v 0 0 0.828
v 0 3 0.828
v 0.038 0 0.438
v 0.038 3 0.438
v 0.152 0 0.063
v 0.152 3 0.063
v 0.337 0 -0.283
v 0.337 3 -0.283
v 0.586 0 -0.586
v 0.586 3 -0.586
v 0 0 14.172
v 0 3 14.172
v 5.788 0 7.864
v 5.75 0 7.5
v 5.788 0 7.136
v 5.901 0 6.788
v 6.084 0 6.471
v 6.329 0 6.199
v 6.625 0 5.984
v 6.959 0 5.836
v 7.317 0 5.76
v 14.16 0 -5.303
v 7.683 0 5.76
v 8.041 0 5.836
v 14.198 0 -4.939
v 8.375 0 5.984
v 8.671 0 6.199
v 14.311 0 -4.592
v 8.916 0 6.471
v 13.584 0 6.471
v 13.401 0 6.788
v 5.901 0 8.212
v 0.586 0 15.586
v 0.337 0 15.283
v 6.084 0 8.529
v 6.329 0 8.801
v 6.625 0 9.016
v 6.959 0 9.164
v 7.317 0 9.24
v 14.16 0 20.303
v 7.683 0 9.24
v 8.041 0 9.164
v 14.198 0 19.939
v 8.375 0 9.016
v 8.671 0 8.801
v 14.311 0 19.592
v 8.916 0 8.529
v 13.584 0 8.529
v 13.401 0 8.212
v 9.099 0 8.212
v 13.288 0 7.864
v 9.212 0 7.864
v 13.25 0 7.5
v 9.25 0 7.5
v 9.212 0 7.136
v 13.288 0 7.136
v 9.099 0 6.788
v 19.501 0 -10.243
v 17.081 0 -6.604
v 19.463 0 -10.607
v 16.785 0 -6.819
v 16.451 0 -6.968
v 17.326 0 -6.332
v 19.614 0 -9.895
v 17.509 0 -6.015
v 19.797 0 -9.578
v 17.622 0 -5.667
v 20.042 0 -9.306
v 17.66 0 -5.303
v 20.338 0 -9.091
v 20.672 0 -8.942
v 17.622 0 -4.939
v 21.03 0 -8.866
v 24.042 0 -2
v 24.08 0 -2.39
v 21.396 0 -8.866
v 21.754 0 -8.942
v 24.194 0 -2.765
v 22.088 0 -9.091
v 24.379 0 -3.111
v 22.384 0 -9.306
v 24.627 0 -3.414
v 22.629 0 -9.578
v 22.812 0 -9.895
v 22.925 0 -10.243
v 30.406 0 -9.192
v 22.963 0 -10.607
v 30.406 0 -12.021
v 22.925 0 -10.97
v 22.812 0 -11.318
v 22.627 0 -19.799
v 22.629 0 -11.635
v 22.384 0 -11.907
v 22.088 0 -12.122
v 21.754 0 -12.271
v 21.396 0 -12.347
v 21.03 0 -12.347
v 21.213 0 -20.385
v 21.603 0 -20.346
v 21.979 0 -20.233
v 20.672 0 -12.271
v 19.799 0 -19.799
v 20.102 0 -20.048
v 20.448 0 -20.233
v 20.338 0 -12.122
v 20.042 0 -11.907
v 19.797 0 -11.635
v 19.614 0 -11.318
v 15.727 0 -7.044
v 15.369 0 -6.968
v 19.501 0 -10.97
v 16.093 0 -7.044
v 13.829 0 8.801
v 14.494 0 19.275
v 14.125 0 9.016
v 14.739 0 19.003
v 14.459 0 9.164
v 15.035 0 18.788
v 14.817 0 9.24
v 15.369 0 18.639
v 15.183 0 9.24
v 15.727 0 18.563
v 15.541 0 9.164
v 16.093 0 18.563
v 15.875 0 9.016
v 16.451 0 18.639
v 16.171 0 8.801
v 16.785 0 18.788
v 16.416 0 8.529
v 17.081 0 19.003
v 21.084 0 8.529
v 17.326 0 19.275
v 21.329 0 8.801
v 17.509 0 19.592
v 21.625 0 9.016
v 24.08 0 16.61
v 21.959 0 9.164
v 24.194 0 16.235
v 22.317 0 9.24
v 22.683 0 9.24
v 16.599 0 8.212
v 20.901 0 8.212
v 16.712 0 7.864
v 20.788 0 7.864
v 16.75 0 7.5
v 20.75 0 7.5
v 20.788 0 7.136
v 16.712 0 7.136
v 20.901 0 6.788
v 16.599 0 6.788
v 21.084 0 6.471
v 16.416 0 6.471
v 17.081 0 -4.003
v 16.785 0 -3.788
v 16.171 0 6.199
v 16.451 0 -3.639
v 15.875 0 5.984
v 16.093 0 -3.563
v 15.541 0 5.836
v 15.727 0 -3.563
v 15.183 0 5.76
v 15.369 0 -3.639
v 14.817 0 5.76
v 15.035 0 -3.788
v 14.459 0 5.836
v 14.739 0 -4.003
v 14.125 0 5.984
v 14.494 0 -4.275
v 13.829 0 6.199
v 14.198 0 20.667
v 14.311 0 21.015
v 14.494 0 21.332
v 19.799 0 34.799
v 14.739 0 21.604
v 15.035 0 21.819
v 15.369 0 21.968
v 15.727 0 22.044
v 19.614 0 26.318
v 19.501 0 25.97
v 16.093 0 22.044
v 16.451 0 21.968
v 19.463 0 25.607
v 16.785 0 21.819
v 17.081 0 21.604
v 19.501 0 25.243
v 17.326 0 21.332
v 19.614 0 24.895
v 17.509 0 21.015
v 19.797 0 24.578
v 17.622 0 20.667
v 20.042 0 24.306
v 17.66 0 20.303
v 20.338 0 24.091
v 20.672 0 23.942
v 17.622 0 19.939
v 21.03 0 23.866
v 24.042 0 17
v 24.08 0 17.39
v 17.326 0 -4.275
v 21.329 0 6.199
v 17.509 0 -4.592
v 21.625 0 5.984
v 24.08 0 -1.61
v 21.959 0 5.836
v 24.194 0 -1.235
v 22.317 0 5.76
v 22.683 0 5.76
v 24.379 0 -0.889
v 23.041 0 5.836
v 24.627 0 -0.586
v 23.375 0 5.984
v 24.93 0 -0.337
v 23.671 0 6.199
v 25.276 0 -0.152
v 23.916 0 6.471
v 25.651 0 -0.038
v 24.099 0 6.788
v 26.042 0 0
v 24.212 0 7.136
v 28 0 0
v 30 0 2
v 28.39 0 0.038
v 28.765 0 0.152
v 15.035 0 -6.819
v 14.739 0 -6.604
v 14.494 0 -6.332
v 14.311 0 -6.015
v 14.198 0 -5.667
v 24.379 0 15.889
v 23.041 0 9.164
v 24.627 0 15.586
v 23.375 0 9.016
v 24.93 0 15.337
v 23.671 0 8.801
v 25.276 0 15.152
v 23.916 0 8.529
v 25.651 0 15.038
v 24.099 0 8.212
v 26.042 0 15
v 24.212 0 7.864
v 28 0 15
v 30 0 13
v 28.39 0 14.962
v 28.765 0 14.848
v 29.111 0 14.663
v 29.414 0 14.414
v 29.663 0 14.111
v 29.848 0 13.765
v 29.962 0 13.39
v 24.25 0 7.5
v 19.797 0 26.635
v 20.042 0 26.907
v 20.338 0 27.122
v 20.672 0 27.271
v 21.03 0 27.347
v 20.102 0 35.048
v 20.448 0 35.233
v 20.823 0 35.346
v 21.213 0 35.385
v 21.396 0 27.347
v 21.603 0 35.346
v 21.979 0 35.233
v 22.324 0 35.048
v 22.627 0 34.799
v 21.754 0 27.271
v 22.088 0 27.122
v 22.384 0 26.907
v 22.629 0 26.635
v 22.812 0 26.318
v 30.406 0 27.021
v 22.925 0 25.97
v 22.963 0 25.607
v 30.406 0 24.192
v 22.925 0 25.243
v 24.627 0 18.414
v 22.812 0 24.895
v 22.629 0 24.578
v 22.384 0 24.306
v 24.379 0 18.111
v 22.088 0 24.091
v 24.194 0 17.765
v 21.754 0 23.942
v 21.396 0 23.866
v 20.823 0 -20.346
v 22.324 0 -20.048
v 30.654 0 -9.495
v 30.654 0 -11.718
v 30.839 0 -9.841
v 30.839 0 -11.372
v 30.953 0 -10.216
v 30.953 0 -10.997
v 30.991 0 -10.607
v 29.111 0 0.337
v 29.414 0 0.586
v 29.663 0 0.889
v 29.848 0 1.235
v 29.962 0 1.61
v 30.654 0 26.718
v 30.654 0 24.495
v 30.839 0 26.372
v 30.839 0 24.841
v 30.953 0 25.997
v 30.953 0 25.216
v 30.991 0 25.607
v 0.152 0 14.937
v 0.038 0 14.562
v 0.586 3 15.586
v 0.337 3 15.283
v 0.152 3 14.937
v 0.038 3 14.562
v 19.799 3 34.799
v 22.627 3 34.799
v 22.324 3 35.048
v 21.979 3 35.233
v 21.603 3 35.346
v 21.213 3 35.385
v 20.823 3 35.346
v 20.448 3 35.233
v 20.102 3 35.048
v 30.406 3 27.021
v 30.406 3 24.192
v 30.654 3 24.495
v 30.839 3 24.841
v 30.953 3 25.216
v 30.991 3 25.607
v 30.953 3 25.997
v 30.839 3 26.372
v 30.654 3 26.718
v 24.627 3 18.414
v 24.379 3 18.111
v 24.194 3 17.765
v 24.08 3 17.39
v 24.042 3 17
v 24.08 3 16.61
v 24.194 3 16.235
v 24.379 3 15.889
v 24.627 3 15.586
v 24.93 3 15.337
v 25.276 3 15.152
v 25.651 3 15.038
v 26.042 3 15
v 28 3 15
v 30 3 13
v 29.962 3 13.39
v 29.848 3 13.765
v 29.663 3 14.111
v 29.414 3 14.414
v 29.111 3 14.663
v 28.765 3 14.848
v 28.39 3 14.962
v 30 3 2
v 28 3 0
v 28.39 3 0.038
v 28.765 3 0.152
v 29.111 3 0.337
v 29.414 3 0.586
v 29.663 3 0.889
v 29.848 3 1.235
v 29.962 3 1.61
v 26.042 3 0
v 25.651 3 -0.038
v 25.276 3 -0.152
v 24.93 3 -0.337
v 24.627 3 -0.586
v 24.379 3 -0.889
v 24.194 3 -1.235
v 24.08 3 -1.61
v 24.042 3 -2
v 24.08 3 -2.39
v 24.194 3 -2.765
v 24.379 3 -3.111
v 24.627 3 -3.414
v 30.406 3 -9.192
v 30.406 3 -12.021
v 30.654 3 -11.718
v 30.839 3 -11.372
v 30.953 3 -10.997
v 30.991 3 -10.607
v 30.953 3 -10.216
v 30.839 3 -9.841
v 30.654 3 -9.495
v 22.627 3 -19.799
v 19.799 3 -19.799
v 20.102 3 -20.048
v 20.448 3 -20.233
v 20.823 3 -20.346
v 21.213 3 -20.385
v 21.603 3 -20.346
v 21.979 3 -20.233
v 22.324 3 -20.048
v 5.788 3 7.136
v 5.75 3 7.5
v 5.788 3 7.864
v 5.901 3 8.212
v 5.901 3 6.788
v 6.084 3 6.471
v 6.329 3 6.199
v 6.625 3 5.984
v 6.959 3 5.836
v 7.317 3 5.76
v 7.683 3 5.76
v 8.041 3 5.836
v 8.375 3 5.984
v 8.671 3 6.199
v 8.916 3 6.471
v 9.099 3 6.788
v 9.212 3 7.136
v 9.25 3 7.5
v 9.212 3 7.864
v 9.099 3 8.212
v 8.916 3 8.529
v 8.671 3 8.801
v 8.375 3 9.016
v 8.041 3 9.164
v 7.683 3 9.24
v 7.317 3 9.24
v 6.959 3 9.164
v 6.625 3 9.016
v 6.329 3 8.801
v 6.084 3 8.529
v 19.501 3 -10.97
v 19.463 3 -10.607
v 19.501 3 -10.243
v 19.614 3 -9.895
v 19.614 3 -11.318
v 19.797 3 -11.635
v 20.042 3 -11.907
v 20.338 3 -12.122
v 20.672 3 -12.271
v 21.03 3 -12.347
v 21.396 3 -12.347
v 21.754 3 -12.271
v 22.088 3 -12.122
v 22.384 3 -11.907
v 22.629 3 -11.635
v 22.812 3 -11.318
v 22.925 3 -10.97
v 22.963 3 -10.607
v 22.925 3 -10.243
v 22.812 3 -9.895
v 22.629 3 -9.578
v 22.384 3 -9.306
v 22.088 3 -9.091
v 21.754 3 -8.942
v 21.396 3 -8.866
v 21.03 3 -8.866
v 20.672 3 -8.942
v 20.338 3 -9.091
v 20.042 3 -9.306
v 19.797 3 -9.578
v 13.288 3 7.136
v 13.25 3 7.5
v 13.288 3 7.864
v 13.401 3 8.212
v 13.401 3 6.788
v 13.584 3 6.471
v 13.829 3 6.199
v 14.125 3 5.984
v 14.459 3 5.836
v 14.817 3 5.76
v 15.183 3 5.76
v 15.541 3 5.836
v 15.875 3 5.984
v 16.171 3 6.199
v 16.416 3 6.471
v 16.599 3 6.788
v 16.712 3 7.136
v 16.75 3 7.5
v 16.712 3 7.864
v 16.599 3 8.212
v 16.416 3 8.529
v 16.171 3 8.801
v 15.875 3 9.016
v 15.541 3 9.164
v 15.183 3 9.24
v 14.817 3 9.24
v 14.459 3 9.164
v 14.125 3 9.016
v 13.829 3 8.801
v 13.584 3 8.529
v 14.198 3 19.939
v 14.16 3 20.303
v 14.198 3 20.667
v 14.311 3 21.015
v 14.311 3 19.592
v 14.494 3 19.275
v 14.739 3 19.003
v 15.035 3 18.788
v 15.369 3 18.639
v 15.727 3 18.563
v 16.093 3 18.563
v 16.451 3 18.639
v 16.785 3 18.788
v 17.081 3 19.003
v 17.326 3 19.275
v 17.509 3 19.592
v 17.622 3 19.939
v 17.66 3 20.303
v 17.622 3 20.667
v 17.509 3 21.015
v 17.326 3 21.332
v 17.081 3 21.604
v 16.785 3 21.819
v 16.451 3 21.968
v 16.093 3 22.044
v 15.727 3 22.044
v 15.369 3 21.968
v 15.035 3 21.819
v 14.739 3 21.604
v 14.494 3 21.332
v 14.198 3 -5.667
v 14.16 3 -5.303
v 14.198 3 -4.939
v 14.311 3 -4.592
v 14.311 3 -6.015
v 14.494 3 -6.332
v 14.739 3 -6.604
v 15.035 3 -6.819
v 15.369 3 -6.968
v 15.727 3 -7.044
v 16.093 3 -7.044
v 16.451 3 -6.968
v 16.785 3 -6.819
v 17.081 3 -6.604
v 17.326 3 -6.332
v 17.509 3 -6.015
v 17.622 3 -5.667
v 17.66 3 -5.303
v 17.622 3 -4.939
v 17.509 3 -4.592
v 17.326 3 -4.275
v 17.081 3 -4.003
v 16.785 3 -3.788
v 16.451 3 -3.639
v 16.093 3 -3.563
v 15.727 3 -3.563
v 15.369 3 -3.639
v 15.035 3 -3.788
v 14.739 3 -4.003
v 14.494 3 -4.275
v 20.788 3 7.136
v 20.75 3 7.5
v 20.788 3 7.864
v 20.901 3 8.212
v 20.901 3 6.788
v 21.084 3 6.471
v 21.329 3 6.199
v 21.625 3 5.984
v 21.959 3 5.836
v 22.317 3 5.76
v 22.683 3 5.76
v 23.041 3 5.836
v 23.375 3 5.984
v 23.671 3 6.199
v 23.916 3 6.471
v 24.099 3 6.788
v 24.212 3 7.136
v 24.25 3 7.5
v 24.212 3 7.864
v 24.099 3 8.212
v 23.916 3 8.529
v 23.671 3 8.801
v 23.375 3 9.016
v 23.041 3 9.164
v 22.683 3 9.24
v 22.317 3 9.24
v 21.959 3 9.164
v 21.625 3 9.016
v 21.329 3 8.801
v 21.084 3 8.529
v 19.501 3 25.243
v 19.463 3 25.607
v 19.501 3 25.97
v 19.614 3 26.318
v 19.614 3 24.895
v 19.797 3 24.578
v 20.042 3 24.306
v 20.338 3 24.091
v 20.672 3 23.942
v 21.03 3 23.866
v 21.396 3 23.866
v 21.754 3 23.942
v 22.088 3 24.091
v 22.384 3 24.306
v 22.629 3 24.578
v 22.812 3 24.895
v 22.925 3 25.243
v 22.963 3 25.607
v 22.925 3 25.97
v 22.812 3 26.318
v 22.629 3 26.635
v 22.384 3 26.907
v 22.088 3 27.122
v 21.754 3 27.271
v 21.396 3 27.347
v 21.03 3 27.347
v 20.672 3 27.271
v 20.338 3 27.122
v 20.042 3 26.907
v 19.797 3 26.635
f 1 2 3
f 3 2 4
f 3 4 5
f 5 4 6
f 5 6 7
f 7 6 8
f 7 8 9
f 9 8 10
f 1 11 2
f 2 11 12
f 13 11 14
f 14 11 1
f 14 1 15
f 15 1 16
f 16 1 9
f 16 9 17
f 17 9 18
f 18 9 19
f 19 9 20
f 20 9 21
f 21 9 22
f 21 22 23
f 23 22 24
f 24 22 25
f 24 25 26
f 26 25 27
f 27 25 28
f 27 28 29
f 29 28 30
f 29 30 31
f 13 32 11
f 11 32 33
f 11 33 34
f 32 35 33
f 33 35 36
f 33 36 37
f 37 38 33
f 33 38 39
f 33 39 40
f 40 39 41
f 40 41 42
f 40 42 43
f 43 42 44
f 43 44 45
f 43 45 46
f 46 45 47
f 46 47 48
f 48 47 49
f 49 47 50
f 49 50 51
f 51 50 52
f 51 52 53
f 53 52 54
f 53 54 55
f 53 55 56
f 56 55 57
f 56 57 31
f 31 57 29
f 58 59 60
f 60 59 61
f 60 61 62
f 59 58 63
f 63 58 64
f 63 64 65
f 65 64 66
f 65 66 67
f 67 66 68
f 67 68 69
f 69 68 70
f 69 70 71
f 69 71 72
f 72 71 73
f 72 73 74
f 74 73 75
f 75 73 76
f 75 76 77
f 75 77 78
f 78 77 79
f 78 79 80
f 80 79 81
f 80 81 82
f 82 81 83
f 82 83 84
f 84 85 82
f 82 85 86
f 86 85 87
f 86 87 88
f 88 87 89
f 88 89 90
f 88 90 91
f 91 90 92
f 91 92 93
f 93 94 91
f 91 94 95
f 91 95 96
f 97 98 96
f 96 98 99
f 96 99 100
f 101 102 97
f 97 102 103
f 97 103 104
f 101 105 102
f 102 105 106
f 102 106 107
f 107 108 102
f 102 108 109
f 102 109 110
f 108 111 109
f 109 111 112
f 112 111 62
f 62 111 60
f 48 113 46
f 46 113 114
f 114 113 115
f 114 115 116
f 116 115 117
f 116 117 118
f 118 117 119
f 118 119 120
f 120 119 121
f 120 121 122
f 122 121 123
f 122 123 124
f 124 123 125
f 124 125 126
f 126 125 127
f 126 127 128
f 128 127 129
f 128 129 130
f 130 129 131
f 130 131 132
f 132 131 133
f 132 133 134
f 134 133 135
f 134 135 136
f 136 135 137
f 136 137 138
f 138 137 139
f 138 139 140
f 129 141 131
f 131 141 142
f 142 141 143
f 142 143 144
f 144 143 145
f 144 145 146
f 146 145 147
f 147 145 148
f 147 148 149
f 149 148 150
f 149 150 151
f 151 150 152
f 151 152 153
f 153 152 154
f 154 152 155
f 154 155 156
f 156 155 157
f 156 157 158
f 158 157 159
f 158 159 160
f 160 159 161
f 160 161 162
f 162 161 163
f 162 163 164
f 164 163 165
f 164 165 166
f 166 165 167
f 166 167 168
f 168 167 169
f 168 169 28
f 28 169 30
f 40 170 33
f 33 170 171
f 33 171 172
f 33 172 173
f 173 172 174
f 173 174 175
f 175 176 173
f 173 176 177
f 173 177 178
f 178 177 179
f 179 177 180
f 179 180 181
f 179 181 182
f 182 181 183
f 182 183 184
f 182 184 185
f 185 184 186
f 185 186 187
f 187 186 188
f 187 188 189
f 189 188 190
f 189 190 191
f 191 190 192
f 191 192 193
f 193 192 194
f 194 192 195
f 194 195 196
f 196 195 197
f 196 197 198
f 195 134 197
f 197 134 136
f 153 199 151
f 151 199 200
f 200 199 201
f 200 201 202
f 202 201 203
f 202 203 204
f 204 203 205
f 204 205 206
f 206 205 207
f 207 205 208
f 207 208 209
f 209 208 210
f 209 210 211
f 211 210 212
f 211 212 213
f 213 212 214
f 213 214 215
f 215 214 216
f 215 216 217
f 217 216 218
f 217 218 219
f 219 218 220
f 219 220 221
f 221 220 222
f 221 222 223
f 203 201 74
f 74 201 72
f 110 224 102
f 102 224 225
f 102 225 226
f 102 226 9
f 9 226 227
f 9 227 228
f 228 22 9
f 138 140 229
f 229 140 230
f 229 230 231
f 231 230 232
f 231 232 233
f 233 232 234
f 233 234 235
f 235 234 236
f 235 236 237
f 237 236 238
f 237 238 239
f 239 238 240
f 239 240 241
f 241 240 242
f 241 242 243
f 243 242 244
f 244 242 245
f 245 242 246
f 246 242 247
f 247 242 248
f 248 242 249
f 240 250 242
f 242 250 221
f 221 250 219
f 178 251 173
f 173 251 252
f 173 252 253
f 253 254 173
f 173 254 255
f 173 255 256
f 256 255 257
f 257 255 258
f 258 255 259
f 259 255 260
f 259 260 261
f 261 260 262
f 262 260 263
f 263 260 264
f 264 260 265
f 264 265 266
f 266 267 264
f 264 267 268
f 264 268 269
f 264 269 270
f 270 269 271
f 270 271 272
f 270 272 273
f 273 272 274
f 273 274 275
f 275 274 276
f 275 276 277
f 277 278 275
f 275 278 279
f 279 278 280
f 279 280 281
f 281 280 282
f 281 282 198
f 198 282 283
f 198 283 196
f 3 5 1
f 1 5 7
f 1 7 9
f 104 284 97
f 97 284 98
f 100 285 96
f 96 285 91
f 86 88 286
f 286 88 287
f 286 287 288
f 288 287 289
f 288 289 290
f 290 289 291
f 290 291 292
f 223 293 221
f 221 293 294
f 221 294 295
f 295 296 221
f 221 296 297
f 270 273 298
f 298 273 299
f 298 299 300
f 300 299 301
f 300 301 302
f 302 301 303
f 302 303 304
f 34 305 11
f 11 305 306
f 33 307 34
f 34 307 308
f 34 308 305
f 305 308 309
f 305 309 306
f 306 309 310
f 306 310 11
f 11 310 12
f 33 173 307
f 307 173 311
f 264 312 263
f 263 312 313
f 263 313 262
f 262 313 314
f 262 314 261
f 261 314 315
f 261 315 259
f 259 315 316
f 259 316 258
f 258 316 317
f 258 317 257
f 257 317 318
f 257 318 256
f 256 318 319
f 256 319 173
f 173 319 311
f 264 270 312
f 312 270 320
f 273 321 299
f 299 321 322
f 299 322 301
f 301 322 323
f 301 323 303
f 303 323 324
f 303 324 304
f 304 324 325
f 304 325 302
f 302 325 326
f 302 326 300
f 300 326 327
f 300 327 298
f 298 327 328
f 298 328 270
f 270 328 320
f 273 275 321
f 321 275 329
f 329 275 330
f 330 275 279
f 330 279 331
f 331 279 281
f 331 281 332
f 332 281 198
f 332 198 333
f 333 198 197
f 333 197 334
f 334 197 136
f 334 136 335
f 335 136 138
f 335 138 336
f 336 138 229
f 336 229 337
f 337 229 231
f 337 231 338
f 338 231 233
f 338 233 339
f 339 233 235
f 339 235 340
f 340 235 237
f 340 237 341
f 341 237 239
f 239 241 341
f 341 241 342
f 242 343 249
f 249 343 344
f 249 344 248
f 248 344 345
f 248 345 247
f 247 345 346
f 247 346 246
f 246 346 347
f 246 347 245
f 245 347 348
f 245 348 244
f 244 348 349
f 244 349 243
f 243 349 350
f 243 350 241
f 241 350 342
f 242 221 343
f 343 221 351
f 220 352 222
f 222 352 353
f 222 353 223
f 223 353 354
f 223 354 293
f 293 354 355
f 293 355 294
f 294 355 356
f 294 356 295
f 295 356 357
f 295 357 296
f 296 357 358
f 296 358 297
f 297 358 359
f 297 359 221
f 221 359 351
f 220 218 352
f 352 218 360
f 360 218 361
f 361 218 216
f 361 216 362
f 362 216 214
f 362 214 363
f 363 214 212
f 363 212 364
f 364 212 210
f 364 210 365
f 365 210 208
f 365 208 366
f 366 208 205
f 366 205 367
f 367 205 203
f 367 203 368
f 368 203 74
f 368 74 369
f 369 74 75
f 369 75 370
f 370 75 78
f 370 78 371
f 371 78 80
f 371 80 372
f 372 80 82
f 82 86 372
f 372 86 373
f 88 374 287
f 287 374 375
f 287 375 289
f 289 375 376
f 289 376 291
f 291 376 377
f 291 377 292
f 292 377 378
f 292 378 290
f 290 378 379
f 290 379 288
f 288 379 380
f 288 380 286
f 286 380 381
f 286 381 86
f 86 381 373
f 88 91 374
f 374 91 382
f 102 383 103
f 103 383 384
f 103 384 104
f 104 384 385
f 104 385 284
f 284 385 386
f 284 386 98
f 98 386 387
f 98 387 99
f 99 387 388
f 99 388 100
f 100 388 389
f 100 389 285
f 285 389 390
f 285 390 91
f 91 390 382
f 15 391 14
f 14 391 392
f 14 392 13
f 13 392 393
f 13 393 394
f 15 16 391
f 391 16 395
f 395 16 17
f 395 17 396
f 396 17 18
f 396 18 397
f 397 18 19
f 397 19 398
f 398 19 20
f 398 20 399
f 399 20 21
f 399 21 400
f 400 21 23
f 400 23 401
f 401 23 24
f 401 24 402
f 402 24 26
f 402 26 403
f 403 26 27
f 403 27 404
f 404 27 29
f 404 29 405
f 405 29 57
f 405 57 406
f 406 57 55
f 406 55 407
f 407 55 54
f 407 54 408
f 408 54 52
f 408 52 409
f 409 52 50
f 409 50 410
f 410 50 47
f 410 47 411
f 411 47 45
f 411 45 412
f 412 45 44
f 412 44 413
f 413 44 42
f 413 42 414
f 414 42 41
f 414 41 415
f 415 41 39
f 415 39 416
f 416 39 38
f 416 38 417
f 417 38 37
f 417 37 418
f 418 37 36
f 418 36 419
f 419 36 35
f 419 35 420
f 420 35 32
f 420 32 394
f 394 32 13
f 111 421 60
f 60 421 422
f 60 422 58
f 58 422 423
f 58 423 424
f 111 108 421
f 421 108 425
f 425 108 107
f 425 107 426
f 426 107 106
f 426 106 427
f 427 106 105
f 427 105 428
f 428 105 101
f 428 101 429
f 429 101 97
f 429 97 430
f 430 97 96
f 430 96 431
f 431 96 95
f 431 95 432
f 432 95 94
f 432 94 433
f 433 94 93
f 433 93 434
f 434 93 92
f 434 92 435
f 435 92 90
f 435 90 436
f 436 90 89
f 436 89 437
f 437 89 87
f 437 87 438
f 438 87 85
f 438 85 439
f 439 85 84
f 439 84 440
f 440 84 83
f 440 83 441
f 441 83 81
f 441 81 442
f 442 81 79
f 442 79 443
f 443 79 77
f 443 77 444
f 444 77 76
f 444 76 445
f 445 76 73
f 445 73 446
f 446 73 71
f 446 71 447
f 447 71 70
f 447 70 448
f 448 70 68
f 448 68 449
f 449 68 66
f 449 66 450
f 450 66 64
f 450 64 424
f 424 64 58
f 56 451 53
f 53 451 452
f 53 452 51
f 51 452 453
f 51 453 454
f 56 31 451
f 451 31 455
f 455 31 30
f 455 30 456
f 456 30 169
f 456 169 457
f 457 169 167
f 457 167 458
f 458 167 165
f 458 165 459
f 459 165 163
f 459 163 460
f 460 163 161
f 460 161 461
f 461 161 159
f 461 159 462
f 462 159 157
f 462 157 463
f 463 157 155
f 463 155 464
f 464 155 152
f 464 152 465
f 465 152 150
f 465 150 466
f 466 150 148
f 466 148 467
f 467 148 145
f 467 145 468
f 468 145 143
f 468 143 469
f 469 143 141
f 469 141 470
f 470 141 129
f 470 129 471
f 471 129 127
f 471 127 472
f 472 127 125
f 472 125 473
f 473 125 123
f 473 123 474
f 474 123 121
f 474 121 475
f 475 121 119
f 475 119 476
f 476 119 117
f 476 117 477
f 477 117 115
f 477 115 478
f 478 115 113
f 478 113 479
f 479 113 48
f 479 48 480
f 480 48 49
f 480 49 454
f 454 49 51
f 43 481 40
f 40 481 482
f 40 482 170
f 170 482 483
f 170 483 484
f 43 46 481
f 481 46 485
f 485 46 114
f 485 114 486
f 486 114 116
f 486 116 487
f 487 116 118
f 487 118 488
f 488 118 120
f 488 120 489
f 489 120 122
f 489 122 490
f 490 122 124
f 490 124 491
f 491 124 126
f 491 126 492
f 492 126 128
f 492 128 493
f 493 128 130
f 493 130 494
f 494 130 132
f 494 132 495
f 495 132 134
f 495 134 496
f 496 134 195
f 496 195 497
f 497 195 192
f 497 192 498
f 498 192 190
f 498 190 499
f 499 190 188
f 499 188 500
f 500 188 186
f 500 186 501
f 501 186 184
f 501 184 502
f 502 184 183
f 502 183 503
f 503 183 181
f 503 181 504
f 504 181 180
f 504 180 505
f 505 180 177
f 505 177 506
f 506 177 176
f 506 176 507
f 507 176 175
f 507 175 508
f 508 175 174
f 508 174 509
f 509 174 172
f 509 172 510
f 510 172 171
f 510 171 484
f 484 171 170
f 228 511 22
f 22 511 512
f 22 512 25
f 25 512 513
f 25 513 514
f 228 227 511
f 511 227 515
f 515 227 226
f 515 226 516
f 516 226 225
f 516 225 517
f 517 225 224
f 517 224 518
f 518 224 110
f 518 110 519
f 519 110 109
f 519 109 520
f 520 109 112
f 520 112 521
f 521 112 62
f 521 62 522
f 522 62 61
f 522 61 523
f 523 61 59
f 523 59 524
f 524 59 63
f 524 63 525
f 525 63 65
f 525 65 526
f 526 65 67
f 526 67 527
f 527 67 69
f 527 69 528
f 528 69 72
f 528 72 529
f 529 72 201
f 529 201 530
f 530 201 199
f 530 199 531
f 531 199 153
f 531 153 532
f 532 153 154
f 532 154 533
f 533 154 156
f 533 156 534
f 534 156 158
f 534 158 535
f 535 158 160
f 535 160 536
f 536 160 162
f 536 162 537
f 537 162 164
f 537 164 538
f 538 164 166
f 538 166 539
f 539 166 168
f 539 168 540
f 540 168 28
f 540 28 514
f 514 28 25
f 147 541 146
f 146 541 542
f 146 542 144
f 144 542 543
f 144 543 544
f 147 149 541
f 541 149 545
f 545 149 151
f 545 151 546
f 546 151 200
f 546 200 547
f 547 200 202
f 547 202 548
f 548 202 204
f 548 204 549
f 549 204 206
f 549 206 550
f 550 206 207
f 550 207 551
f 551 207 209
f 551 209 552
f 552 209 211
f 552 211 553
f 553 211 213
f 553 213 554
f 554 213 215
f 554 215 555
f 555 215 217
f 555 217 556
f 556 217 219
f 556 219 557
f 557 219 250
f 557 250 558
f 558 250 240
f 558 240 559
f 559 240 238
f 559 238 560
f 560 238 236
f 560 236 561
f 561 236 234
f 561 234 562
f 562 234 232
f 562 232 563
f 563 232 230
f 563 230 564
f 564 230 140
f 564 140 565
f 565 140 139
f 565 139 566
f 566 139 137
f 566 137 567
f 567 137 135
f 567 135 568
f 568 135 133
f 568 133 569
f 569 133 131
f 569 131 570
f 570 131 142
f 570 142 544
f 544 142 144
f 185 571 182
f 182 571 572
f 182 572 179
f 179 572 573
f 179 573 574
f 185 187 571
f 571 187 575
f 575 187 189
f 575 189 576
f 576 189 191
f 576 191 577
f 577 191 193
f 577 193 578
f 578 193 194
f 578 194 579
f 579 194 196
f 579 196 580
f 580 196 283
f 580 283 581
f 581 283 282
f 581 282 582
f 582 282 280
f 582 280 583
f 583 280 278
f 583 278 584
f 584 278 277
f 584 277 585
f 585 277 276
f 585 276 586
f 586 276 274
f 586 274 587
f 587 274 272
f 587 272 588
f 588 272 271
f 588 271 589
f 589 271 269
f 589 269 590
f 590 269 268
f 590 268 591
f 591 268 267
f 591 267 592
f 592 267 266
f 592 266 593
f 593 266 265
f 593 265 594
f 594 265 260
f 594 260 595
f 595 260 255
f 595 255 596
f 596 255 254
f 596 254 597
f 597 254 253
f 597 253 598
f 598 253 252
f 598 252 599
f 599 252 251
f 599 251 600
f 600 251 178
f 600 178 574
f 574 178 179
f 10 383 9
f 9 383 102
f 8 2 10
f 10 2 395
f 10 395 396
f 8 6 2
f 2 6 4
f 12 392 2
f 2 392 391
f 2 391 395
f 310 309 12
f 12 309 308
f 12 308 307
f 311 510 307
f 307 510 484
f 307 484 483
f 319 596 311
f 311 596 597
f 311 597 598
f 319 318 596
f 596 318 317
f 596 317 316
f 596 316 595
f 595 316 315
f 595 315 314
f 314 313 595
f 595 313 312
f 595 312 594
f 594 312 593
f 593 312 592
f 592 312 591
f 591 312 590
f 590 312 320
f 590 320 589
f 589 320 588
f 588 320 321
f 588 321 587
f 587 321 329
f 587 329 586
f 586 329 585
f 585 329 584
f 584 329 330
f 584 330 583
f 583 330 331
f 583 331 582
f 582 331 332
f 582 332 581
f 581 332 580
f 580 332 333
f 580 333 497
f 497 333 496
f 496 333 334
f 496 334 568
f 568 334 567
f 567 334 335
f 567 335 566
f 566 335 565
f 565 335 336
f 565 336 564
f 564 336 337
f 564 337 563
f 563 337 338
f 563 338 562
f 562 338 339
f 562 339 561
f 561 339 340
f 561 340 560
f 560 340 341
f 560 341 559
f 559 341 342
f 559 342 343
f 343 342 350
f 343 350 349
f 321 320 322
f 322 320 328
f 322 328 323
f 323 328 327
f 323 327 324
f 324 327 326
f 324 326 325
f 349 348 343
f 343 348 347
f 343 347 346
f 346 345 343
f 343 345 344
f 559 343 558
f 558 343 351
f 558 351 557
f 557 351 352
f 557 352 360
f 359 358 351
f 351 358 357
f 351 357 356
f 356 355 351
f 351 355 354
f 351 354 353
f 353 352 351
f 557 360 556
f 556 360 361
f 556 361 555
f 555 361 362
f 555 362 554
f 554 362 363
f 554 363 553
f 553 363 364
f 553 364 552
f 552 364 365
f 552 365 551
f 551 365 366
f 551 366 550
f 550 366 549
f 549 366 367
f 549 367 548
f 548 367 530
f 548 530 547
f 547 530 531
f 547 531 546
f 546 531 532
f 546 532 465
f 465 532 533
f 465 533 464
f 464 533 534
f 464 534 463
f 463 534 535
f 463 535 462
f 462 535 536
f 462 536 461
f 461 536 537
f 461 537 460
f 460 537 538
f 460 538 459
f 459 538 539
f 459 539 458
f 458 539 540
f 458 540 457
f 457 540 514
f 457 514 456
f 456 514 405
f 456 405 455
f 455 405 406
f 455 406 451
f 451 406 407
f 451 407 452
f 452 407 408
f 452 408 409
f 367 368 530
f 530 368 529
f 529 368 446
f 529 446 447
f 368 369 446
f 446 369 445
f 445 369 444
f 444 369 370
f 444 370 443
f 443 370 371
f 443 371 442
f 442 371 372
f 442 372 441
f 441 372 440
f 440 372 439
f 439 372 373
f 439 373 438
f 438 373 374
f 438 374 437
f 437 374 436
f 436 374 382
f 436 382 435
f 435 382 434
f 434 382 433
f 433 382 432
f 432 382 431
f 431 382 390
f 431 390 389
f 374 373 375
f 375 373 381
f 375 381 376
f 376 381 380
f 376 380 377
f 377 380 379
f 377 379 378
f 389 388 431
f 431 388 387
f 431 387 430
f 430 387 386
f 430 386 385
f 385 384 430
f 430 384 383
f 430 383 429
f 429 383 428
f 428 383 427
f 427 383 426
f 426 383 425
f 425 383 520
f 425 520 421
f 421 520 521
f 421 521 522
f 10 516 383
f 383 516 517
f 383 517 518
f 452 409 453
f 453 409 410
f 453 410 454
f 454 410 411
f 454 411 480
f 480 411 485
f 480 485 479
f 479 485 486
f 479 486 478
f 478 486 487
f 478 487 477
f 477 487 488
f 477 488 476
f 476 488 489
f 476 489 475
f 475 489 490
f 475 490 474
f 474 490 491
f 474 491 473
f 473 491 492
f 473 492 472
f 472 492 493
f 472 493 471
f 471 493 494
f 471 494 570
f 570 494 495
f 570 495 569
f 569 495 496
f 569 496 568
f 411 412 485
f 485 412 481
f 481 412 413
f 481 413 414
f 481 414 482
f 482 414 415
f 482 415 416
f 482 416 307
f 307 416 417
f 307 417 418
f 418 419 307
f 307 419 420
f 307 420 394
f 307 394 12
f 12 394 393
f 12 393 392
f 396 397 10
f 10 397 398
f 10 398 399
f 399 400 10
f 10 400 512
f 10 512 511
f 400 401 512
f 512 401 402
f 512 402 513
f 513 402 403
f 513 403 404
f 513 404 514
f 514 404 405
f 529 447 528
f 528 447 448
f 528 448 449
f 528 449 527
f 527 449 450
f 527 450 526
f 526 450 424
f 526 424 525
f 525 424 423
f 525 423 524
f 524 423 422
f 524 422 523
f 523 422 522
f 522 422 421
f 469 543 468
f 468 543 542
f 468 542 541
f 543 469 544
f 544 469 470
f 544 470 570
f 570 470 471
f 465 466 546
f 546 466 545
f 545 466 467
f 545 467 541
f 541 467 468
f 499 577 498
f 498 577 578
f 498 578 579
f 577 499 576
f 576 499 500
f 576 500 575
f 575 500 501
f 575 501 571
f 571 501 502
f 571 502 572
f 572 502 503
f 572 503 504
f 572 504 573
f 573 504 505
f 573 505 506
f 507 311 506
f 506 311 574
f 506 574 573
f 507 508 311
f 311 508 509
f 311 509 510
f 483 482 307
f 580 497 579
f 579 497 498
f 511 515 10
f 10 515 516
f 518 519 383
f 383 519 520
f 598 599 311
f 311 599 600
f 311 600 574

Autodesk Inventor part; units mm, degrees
ref_plane "YZ Plane" through (0, 0, 0) normal (1, 0, 0) x (0, 1, 0)
ref_plane "XZ Plane" through (0, 0, 0) normal (0, 1, 0) x (-1, 0, 0)
ref_plane "XY Plane" through (0, 0, 0) normal (0, 0, 1) x (1, 0, 0)
sketch "Sketch1" plane through (0, 0, 0) normal (0, 1, 0) x (-1, 0, 0)
  line L0 (0, 0) -> (0, 15)
  line L1 (0, 15) -> (-30, 15)
  line L2 (-30, 15) -> (-30, 0)
  line L3 (-30, 0) -> (0, 0)
  line L4 (0, 0) -> (-21.2132, -21.2132)
  line L5 (0, 0) -> (30, 0) construction
  line L6 (-21.2132, -21.2132) -> (-31.8198, -10.6066)
  line L7 (-31.8198, -10.6066) -> (-21.2132, 0)
  line L8 (0, 15) -> (-21.2132, 36.2132)
  line L9 (0, 15) -> (30, 15) construction
  line L10 (-21.2132, 36.2132) -> (-31.8198, 25.6066)
  line L11 (-31.8198, 25.6066) -> (-21.2132, 15)
  dimension "d0" = 15
  dimension "d1" = 30
  dimension "d2" = 30
  dimension "d3" = 135
  dimension "d4" = 15
  dimension "d5" = 30
  dimension "d6" = 135
extrude "Extrusion1" add sketch "Sketch1" along normal blind 3
sketch "Sketch2" plane through (0, 3, 0) normal (0, 1, 0) x (1, 0, 0)
  circle A0 centre (21.2132, -25.6066) radius 1.75
  circle A1 centre (15.9099, -20.3033) radius 1.75
  circle A2 centre (15, -7.5) radius 1.75
  circle A3 centre (21.2132, 10.6066) radius 1.75
  circle A4 centre (15.9099, 5.3033) radius 1.75
  circle A5 centre (7.5, -7.5) radius 1.75
  circle A6 centre (22.5, -7.5) radius 1.75
  line L0 (31.8198, -25.6066) -> (21.2132, -15) projected
  line L1 (30, 0) -> (21.2132, 0) projected
  line L2 (21.2132, 0) -> (31.8198, 10.6066) projected
  line L3 (21.2132, -36.2132) -> (31.8198, -25.6066) projected
  line L4 (30, -15) -> (30, 0) projected
  line L5 (0, 0) -> (0, -15) projected
  line L6 (31.8198, 10.6066) -> (21.2132, 21.2132) projected
  dimension "d9" = 3.5
  dimension "d10" = 3.5
  dimension "d11" = 3.5
  dimension "d12" = 3.5
  dimension "d13" = 3.5
  dimension "d14" = 3.5
  dimension "d15" = 3.5
  dimension "d16" = 7.5
  dimension "d18" = 7.5
  dimension "d19" = 7.5
  dimension "d20" = 7.5
  dimension "d21" = 7.5
  dimension "d22" = 7.5
  dimension "d23" = 7.5
  dimension "d24" = 7.5
  dimension "d26" = 15
  dimension "d27" = 7.5
  dimension "d28" = 15
  dimension "d29" = 7.5
  dimension "d30" = 15
  dimension "d31" = 7.5
extrude "Extrusion2" cut sketch "Sketch2" against normal through all
fillet "Fillet1" radius 2 10 edges at (21.2132, 1.5, -21.2132) (31.8198, 1.5, -10.6066) (21.2132, 1.5, 0) (30, 1.5, 0) (30, 1.5, 15) (21.2132, 1.5, 15) (31.8198, 1.5, 25.6066) (21.2132, 1.5, 36.2132) (0, 1.5, 15) (0, 1.5, 0)
equation "\"d16\" = a"
equation "\"d18\" = a"
equation "\"d19\" = a"
equation "\"d20\" = a"
equation "\"d21\" = a"
equation "\"d22\" = a"
equation "\"d23\" = a"
equation "\"d24\" = a"
equation "\"d27\" = a"
equation "\"d29\" = a"
equation "\"d31\" = a"
equation "\"a\" = 7.5"
properties part number "45 degree angle bracket"
